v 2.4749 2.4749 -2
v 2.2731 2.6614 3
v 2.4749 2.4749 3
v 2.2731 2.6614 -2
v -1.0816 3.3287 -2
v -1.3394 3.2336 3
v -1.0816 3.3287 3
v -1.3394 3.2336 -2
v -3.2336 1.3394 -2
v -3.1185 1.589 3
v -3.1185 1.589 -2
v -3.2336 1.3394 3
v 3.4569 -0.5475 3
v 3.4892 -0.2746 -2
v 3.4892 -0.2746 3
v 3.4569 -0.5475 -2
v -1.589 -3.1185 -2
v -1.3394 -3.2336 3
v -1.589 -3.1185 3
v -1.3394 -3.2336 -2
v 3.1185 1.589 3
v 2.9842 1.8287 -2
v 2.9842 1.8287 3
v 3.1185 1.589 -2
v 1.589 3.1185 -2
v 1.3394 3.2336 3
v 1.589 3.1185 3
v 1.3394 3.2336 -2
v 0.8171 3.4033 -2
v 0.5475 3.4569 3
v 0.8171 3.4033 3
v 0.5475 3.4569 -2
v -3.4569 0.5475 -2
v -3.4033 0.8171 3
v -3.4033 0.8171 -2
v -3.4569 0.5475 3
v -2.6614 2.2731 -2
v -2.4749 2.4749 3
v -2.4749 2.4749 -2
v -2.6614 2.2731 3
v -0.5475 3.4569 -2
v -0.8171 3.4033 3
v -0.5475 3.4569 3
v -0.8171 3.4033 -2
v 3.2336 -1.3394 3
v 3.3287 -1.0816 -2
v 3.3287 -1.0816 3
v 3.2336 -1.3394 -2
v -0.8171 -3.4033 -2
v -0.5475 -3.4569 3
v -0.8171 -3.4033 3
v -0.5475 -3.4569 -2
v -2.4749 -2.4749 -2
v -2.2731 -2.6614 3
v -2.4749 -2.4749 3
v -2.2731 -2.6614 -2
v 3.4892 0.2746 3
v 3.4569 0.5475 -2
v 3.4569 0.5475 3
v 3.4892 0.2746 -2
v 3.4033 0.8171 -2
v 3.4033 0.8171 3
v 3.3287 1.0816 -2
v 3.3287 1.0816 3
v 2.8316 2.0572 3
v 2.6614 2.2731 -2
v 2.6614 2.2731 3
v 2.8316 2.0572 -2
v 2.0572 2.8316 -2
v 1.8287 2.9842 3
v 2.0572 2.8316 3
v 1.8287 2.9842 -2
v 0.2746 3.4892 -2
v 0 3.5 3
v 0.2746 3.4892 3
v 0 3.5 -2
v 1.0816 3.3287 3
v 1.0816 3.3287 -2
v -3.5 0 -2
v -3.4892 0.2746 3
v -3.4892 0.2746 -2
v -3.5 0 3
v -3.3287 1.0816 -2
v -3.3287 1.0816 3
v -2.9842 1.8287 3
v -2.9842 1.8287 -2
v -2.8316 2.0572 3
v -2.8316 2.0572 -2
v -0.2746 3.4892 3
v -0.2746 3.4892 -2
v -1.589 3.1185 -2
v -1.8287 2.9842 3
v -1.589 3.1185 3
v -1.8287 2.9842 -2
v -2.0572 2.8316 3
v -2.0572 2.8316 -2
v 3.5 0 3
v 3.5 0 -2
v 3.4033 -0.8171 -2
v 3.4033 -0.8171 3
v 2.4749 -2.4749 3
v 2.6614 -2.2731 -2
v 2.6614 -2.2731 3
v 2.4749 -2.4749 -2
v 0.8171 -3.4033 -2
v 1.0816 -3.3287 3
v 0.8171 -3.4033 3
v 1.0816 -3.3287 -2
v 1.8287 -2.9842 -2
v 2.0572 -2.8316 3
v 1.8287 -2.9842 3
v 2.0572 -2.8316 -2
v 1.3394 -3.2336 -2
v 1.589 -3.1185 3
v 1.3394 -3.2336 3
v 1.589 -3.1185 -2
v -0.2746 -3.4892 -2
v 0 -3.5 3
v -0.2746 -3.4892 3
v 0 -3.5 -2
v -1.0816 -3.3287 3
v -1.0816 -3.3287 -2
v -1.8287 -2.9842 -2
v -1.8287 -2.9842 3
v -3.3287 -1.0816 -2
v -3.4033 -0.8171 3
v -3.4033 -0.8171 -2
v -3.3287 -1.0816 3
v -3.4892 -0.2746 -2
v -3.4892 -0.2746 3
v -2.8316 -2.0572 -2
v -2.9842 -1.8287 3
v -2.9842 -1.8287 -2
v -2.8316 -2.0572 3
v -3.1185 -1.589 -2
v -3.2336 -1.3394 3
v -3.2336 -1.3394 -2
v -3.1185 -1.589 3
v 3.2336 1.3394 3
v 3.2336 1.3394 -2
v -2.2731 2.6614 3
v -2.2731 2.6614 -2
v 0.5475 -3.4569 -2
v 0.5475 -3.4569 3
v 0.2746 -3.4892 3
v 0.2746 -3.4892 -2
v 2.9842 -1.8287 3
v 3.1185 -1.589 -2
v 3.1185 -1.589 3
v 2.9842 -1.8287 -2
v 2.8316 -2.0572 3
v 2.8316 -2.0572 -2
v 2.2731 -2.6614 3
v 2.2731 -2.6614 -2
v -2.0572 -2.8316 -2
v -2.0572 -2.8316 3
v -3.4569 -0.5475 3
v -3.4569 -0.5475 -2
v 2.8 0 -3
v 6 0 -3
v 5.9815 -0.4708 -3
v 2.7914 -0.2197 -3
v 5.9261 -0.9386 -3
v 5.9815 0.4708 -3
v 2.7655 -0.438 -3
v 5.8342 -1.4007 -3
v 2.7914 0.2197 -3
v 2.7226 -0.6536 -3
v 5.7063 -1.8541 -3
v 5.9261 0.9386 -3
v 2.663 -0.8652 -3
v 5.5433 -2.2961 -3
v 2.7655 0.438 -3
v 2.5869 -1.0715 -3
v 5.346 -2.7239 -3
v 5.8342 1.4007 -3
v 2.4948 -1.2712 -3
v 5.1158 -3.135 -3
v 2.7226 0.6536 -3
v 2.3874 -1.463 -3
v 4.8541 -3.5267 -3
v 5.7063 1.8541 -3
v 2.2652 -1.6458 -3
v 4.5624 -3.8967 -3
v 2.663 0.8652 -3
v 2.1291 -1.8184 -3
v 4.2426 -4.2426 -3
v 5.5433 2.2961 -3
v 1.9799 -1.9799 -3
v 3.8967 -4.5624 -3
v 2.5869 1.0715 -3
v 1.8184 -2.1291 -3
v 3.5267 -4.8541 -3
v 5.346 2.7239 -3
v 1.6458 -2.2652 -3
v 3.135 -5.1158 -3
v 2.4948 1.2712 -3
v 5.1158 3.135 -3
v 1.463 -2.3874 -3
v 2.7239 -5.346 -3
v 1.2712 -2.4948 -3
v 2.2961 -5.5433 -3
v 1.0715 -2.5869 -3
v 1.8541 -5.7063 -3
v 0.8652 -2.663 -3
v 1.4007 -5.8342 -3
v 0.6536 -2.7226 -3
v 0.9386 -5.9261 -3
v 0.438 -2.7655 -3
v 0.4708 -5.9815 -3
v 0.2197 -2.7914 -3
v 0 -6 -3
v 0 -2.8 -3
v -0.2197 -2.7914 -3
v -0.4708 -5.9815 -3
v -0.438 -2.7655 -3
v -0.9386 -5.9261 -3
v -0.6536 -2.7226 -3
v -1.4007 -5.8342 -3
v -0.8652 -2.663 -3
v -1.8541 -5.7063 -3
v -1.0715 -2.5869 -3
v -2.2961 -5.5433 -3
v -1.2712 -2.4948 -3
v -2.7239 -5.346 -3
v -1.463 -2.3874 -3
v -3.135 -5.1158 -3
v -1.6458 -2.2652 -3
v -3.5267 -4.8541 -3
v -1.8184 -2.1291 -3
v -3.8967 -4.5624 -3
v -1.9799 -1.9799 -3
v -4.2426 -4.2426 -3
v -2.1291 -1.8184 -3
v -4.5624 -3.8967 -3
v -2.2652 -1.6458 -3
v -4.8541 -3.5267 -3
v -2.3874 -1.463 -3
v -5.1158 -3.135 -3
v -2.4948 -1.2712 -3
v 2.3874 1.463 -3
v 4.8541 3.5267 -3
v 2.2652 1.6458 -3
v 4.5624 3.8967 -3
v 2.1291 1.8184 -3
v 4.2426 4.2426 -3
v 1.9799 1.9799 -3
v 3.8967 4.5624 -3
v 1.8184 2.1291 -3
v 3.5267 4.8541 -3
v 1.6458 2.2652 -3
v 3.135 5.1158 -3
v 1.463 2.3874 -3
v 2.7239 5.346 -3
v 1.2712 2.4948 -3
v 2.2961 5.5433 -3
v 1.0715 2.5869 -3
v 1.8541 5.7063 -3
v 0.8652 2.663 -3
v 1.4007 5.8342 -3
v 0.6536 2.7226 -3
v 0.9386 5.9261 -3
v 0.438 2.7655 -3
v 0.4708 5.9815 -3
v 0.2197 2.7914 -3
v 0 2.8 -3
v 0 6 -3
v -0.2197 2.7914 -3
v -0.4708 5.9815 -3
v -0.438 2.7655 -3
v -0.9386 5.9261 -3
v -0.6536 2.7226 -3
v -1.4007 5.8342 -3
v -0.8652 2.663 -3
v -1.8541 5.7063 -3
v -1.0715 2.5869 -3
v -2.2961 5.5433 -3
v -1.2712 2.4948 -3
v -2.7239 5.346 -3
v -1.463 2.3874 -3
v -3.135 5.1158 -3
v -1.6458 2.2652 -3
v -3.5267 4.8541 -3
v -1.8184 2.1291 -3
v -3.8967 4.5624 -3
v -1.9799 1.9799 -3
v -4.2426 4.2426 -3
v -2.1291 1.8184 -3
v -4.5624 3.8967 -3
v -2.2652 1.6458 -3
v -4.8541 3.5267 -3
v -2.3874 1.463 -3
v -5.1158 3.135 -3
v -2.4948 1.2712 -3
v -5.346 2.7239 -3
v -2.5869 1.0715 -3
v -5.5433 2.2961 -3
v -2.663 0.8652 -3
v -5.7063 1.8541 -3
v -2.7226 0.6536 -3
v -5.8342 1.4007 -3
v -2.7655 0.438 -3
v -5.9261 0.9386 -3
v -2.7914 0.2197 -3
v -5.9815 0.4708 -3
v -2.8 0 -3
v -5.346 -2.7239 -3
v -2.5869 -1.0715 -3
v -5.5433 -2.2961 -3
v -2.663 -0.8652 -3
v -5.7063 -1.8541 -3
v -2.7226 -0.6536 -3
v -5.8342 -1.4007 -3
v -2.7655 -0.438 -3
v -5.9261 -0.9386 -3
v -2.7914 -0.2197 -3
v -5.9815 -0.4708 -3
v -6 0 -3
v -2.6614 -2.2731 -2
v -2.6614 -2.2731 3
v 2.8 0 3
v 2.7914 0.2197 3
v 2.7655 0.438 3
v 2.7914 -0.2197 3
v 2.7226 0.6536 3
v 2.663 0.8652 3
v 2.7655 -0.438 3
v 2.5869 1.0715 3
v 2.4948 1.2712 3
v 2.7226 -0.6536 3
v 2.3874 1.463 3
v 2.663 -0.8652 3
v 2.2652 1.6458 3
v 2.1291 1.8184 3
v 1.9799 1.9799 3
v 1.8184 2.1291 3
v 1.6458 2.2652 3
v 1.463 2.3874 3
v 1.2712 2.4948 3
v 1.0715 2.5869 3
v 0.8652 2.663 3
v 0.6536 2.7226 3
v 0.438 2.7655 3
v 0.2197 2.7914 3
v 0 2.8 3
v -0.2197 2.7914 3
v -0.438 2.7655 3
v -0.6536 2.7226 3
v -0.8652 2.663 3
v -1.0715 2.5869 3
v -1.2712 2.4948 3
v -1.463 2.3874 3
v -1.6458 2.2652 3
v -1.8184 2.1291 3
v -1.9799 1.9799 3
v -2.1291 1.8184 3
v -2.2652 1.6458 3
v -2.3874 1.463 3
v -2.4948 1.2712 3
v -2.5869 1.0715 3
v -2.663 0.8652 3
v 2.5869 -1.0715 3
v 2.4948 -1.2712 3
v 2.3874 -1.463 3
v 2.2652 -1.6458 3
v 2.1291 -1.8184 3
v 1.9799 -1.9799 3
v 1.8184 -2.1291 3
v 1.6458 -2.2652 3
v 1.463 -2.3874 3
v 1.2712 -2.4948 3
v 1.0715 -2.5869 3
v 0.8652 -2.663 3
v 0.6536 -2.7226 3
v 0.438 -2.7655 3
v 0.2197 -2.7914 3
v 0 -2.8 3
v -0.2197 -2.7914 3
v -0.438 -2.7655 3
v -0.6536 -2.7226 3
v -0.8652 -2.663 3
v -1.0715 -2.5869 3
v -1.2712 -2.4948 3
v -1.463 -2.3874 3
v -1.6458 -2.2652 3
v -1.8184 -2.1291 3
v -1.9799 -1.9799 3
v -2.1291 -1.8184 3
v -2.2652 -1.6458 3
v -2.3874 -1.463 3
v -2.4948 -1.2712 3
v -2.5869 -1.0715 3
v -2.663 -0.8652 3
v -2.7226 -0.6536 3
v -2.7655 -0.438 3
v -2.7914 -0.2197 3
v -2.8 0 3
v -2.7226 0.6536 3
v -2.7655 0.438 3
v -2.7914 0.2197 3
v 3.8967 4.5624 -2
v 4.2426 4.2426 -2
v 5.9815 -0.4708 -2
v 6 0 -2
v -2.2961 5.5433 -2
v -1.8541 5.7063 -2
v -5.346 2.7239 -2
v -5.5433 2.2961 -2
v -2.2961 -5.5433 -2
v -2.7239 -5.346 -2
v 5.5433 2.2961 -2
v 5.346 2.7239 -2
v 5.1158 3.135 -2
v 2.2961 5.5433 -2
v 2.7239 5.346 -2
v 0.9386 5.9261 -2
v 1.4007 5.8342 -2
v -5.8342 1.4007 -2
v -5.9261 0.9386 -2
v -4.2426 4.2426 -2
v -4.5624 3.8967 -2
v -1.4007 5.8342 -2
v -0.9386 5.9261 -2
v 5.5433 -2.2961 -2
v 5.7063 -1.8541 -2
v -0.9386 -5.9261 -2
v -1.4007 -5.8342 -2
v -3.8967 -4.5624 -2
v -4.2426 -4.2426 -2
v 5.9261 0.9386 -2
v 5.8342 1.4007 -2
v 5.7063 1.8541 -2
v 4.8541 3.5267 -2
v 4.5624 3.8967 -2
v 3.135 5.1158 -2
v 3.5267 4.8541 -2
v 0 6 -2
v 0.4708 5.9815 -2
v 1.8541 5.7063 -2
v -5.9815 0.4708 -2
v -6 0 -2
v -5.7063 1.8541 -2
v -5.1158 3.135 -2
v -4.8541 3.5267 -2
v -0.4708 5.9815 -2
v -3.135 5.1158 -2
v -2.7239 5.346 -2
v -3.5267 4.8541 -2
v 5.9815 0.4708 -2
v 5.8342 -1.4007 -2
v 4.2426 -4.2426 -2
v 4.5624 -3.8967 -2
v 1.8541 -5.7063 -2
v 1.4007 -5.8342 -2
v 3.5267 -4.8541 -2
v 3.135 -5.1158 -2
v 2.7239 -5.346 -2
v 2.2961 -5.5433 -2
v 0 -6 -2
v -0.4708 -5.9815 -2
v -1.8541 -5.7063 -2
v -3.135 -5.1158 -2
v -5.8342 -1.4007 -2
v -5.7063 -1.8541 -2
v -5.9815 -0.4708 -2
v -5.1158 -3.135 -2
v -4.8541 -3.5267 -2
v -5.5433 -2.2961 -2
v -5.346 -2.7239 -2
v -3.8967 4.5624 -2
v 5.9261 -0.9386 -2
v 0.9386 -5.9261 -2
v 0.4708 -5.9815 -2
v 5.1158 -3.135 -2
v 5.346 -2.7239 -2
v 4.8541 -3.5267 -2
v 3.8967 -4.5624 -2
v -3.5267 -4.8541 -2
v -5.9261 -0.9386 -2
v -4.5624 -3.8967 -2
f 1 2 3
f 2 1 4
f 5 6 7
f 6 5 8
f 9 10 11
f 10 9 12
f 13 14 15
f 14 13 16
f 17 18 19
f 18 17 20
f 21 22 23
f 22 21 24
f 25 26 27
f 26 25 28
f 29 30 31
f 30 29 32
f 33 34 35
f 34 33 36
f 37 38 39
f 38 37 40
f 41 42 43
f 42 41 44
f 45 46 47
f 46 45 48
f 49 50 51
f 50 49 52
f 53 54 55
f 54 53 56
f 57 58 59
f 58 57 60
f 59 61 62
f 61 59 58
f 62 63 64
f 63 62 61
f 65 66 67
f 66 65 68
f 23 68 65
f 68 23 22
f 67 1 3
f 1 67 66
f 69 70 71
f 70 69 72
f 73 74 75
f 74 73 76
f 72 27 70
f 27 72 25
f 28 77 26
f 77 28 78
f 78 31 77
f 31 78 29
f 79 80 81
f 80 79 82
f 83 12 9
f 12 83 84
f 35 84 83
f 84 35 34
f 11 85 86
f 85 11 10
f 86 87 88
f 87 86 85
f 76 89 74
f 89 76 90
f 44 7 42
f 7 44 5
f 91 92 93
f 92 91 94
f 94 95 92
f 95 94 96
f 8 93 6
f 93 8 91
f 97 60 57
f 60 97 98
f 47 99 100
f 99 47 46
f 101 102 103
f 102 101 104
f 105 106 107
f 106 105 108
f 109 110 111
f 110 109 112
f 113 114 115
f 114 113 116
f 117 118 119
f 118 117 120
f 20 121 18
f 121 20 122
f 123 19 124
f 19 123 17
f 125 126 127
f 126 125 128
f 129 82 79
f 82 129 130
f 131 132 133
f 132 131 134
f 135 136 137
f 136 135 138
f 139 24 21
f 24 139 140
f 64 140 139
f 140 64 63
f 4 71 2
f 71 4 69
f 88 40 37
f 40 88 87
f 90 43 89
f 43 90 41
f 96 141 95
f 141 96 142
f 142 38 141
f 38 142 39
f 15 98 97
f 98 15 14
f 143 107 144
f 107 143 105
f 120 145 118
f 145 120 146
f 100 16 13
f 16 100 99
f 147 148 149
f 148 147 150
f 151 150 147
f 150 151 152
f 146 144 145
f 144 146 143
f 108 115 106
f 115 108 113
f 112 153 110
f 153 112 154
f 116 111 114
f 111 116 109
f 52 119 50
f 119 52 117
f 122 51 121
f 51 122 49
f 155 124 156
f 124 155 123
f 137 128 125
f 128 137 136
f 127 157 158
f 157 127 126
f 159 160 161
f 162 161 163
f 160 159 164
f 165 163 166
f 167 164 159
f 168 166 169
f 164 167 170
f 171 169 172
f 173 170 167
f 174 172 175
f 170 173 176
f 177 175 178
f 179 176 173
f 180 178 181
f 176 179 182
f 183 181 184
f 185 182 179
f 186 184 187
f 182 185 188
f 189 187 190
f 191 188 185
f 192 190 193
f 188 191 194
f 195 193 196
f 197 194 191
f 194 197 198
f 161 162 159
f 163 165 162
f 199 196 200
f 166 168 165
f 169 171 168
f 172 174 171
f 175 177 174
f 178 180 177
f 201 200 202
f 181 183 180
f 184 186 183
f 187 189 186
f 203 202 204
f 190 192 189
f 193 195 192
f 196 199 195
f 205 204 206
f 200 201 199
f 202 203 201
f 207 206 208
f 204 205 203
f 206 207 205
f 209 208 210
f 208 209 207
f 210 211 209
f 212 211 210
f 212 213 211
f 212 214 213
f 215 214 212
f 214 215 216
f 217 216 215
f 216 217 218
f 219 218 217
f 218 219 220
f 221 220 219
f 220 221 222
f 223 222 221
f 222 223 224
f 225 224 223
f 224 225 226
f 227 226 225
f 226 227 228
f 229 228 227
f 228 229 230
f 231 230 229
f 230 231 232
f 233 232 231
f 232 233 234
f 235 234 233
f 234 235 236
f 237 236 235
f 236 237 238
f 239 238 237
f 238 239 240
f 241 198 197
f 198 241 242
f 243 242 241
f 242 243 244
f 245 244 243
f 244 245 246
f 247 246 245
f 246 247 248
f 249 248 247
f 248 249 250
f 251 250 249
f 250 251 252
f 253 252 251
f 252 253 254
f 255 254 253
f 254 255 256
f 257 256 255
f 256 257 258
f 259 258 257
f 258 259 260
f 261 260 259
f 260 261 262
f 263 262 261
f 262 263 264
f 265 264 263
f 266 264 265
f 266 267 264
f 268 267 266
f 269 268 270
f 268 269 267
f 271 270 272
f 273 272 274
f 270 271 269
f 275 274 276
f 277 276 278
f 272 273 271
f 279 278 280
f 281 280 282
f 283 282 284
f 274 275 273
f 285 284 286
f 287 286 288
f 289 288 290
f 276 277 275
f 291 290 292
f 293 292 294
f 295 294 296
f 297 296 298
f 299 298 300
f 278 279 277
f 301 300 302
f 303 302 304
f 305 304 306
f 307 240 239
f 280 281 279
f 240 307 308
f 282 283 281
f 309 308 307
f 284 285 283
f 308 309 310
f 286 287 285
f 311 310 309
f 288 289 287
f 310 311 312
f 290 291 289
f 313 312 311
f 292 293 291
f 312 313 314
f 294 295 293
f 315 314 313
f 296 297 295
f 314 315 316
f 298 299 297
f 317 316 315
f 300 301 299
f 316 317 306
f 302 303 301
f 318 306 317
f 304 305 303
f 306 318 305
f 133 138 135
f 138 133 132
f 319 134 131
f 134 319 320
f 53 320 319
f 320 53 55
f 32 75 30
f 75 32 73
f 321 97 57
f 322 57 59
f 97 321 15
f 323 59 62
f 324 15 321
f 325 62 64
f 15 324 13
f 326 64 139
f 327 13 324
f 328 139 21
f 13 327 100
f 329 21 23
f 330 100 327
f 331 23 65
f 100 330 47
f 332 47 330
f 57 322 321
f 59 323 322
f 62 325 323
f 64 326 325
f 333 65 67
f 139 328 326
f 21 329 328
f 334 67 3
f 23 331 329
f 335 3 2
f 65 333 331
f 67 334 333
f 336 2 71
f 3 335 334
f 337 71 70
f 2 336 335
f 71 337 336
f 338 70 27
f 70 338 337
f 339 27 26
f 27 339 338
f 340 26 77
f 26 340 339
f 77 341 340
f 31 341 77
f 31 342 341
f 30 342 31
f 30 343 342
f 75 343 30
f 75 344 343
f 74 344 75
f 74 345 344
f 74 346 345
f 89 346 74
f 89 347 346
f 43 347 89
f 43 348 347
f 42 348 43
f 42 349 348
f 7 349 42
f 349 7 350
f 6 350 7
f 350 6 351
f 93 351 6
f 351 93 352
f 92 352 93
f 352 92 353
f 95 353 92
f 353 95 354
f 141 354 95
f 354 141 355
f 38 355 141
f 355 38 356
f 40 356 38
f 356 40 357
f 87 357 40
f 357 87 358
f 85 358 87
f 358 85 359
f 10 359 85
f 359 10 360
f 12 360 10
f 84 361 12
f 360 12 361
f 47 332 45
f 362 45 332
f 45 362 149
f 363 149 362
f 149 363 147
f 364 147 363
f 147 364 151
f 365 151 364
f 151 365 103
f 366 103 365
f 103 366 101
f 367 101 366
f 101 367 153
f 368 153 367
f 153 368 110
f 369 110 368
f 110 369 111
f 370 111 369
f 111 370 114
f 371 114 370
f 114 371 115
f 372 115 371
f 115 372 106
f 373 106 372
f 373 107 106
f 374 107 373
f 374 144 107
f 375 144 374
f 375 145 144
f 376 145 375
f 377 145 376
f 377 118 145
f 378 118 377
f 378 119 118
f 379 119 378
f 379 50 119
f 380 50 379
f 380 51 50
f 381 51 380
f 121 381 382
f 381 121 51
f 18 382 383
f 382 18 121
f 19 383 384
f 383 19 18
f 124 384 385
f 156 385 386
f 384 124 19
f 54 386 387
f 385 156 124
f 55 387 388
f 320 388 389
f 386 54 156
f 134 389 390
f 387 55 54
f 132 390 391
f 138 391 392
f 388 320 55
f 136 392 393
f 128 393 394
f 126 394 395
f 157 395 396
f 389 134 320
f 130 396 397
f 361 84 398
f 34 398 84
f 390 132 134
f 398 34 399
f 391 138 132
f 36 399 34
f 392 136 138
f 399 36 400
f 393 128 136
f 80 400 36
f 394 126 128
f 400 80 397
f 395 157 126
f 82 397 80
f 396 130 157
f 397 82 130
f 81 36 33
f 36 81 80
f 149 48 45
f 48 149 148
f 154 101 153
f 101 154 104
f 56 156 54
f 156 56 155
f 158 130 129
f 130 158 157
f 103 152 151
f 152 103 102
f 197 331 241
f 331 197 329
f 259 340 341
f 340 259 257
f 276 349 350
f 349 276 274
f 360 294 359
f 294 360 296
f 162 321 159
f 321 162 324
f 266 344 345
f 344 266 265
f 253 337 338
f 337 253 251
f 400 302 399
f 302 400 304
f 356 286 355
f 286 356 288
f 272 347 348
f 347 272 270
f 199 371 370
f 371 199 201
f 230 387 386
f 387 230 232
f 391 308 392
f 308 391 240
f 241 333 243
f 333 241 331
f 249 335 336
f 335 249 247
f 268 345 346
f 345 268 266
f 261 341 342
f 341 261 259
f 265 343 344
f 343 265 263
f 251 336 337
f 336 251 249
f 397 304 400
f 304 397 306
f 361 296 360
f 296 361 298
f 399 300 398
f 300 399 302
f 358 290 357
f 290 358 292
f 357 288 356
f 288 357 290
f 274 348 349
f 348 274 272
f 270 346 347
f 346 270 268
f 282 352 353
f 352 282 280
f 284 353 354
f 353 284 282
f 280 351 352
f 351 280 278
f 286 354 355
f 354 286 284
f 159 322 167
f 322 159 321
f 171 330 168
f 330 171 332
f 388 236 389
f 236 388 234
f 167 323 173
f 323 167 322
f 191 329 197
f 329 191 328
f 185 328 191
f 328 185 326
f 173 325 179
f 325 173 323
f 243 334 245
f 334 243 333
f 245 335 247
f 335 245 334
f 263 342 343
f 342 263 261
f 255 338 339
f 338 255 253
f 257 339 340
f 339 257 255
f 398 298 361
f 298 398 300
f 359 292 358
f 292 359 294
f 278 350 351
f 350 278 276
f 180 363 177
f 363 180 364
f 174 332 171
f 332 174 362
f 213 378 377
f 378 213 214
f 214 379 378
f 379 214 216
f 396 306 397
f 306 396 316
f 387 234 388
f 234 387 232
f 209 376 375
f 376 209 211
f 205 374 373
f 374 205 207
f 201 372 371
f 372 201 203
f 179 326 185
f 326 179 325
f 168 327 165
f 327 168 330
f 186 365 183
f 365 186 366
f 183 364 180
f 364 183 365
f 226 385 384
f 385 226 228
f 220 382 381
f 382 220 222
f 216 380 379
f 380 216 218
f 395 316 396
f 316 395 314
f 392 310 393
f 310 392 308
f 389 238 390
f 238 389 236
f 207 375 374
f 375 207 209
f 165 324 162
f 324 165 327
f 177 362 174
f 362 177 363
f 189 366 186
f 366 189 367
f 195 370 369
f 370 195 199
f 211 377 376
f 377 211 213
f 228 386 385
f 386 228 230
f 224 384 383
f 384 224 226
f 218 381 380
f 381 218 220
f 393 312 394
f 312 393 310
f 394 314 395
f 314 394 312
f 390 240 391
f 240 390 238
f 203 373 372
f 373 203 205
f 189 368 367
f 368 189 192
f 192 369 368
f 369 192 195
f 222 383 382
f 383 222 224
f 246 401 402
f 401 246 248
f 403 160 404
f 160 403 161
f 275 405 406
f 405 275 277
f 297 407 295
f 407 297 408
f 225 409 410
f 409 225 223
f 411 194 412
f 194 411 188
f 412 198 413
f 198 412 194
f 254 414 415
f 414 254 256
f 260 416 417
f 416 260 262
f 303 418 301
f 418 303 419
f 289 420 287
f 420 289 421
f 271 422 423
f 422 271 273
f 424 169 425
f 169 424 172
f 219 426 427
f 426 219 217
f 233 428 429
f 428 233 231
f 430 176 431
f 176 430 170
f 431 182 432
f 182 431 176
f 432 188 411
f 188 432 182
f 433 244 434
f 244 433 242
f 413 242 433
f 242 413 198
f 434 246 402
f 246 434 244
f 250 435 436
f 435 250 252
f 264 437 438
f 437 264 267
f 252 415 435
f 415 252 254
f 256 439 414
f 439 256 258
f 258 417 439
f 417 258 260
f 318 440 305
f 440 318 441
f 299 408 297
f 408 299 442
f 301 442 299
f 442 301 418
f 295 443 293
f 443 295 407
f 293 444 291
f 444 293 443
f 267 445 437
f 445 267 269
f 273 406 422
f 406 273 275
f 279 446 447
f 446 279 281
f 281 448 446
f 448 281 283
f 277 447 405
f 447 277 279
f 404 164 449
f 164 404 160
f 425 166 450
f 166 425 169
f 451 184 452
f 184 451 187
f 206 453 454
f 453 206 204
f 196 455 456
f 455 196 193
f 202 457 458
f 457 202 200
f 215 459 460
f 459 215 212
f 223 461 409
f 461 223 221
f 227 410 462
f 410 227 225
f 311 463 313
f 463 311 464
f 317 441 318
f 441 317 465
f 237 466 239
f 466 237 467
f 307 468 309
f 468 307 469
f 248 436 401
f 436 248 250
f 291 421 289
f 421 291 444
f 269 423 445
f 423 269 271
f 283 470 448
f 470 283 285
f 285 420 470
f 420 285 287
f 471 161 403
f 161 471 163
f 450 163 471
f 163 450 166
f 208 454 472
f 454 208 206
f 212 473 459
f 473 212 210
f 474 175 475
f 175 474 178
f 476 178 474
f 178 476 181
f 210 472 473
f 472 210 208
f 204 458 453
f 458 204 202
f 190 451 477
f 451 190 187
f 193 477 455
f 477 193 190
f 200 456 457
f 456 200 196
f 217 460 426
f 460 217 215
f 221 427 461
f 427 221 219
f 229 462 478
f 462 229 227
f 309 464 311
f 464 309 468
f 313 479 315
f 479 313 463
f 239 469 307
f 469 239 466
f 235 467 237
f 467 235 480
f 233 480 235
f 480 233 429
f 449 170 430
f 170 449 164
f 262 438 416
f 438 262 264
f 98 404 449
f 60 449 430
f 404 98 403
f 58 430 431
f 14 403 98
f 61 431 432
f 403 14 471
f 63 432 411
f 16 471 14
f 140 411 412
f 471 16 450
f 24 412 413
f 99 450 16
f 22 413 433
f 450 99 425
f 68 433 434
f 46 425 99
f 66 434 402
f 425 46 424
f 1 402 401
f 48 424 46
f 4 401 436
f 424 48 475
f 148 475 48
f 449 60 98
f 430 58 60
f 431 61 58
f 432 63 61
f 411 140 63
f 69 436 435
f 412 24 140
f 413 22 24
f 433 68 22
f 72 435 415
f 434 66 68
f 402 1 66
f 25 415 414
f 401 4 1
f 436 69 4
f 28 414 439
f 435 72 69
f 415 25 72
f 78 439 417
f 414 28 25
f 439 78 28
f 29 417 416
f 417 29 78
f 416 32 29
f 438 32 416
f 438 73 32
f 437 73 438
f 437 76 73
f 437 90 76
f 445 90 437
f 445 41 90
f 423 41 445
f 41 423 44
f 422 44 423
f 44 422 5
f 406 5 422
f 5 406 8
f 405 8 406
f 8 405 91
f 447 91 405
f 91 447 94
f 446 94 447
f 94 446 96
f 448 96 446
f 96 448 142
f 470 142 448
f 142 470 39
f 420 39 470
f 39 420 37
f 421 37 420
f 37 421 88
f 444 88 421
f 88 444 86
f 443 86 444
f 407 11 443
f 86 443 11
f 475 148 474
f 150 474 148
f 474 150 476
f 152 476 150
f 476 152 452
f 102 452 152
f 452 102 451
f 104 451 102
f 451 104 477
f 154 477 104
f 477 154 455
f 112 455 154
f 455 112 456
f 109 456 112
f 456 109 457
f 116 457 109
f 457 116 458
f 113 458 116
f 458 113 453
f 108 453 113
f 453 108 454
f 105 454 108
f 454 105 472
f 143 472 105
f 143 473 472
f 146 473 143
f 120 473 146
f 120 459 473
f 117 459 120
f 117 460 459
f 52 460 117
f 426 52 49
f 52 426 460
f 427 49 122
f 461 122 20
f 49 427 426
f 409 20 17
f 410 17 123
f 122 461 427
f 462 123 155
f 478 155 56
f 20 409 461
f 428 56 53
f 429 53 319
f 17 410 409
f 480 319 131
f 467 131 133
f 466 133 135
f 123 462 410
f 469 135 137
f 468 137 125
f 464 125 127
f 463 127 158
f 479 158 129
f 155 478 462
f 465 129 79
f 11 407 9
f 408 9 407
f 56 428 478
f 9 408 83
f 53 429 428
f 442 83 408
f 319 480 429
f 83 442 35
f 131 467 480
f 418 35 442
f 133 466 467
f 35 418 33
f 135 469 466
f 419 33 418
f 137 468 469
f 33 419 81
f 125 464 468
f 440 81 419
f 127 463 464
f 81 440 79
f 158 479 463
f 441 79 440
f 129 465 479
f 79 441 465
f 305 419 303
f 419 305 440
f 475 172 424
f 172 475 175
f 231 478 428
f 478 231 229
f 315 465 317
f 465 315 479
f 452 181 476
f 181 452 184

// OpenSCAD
// Cocktailmaker Schlauchdurchlass

$fn = 80;



difference() {

    cylinder(d=7, h=6, center=true);
    cylinder(d=5.6, h=7, center=true);
}
translate([0,0,-2.5])
difference() {

    cylinder(d=12, h=1, center=true);
    cylinder(d=5.6, h=7, center=true);
}
